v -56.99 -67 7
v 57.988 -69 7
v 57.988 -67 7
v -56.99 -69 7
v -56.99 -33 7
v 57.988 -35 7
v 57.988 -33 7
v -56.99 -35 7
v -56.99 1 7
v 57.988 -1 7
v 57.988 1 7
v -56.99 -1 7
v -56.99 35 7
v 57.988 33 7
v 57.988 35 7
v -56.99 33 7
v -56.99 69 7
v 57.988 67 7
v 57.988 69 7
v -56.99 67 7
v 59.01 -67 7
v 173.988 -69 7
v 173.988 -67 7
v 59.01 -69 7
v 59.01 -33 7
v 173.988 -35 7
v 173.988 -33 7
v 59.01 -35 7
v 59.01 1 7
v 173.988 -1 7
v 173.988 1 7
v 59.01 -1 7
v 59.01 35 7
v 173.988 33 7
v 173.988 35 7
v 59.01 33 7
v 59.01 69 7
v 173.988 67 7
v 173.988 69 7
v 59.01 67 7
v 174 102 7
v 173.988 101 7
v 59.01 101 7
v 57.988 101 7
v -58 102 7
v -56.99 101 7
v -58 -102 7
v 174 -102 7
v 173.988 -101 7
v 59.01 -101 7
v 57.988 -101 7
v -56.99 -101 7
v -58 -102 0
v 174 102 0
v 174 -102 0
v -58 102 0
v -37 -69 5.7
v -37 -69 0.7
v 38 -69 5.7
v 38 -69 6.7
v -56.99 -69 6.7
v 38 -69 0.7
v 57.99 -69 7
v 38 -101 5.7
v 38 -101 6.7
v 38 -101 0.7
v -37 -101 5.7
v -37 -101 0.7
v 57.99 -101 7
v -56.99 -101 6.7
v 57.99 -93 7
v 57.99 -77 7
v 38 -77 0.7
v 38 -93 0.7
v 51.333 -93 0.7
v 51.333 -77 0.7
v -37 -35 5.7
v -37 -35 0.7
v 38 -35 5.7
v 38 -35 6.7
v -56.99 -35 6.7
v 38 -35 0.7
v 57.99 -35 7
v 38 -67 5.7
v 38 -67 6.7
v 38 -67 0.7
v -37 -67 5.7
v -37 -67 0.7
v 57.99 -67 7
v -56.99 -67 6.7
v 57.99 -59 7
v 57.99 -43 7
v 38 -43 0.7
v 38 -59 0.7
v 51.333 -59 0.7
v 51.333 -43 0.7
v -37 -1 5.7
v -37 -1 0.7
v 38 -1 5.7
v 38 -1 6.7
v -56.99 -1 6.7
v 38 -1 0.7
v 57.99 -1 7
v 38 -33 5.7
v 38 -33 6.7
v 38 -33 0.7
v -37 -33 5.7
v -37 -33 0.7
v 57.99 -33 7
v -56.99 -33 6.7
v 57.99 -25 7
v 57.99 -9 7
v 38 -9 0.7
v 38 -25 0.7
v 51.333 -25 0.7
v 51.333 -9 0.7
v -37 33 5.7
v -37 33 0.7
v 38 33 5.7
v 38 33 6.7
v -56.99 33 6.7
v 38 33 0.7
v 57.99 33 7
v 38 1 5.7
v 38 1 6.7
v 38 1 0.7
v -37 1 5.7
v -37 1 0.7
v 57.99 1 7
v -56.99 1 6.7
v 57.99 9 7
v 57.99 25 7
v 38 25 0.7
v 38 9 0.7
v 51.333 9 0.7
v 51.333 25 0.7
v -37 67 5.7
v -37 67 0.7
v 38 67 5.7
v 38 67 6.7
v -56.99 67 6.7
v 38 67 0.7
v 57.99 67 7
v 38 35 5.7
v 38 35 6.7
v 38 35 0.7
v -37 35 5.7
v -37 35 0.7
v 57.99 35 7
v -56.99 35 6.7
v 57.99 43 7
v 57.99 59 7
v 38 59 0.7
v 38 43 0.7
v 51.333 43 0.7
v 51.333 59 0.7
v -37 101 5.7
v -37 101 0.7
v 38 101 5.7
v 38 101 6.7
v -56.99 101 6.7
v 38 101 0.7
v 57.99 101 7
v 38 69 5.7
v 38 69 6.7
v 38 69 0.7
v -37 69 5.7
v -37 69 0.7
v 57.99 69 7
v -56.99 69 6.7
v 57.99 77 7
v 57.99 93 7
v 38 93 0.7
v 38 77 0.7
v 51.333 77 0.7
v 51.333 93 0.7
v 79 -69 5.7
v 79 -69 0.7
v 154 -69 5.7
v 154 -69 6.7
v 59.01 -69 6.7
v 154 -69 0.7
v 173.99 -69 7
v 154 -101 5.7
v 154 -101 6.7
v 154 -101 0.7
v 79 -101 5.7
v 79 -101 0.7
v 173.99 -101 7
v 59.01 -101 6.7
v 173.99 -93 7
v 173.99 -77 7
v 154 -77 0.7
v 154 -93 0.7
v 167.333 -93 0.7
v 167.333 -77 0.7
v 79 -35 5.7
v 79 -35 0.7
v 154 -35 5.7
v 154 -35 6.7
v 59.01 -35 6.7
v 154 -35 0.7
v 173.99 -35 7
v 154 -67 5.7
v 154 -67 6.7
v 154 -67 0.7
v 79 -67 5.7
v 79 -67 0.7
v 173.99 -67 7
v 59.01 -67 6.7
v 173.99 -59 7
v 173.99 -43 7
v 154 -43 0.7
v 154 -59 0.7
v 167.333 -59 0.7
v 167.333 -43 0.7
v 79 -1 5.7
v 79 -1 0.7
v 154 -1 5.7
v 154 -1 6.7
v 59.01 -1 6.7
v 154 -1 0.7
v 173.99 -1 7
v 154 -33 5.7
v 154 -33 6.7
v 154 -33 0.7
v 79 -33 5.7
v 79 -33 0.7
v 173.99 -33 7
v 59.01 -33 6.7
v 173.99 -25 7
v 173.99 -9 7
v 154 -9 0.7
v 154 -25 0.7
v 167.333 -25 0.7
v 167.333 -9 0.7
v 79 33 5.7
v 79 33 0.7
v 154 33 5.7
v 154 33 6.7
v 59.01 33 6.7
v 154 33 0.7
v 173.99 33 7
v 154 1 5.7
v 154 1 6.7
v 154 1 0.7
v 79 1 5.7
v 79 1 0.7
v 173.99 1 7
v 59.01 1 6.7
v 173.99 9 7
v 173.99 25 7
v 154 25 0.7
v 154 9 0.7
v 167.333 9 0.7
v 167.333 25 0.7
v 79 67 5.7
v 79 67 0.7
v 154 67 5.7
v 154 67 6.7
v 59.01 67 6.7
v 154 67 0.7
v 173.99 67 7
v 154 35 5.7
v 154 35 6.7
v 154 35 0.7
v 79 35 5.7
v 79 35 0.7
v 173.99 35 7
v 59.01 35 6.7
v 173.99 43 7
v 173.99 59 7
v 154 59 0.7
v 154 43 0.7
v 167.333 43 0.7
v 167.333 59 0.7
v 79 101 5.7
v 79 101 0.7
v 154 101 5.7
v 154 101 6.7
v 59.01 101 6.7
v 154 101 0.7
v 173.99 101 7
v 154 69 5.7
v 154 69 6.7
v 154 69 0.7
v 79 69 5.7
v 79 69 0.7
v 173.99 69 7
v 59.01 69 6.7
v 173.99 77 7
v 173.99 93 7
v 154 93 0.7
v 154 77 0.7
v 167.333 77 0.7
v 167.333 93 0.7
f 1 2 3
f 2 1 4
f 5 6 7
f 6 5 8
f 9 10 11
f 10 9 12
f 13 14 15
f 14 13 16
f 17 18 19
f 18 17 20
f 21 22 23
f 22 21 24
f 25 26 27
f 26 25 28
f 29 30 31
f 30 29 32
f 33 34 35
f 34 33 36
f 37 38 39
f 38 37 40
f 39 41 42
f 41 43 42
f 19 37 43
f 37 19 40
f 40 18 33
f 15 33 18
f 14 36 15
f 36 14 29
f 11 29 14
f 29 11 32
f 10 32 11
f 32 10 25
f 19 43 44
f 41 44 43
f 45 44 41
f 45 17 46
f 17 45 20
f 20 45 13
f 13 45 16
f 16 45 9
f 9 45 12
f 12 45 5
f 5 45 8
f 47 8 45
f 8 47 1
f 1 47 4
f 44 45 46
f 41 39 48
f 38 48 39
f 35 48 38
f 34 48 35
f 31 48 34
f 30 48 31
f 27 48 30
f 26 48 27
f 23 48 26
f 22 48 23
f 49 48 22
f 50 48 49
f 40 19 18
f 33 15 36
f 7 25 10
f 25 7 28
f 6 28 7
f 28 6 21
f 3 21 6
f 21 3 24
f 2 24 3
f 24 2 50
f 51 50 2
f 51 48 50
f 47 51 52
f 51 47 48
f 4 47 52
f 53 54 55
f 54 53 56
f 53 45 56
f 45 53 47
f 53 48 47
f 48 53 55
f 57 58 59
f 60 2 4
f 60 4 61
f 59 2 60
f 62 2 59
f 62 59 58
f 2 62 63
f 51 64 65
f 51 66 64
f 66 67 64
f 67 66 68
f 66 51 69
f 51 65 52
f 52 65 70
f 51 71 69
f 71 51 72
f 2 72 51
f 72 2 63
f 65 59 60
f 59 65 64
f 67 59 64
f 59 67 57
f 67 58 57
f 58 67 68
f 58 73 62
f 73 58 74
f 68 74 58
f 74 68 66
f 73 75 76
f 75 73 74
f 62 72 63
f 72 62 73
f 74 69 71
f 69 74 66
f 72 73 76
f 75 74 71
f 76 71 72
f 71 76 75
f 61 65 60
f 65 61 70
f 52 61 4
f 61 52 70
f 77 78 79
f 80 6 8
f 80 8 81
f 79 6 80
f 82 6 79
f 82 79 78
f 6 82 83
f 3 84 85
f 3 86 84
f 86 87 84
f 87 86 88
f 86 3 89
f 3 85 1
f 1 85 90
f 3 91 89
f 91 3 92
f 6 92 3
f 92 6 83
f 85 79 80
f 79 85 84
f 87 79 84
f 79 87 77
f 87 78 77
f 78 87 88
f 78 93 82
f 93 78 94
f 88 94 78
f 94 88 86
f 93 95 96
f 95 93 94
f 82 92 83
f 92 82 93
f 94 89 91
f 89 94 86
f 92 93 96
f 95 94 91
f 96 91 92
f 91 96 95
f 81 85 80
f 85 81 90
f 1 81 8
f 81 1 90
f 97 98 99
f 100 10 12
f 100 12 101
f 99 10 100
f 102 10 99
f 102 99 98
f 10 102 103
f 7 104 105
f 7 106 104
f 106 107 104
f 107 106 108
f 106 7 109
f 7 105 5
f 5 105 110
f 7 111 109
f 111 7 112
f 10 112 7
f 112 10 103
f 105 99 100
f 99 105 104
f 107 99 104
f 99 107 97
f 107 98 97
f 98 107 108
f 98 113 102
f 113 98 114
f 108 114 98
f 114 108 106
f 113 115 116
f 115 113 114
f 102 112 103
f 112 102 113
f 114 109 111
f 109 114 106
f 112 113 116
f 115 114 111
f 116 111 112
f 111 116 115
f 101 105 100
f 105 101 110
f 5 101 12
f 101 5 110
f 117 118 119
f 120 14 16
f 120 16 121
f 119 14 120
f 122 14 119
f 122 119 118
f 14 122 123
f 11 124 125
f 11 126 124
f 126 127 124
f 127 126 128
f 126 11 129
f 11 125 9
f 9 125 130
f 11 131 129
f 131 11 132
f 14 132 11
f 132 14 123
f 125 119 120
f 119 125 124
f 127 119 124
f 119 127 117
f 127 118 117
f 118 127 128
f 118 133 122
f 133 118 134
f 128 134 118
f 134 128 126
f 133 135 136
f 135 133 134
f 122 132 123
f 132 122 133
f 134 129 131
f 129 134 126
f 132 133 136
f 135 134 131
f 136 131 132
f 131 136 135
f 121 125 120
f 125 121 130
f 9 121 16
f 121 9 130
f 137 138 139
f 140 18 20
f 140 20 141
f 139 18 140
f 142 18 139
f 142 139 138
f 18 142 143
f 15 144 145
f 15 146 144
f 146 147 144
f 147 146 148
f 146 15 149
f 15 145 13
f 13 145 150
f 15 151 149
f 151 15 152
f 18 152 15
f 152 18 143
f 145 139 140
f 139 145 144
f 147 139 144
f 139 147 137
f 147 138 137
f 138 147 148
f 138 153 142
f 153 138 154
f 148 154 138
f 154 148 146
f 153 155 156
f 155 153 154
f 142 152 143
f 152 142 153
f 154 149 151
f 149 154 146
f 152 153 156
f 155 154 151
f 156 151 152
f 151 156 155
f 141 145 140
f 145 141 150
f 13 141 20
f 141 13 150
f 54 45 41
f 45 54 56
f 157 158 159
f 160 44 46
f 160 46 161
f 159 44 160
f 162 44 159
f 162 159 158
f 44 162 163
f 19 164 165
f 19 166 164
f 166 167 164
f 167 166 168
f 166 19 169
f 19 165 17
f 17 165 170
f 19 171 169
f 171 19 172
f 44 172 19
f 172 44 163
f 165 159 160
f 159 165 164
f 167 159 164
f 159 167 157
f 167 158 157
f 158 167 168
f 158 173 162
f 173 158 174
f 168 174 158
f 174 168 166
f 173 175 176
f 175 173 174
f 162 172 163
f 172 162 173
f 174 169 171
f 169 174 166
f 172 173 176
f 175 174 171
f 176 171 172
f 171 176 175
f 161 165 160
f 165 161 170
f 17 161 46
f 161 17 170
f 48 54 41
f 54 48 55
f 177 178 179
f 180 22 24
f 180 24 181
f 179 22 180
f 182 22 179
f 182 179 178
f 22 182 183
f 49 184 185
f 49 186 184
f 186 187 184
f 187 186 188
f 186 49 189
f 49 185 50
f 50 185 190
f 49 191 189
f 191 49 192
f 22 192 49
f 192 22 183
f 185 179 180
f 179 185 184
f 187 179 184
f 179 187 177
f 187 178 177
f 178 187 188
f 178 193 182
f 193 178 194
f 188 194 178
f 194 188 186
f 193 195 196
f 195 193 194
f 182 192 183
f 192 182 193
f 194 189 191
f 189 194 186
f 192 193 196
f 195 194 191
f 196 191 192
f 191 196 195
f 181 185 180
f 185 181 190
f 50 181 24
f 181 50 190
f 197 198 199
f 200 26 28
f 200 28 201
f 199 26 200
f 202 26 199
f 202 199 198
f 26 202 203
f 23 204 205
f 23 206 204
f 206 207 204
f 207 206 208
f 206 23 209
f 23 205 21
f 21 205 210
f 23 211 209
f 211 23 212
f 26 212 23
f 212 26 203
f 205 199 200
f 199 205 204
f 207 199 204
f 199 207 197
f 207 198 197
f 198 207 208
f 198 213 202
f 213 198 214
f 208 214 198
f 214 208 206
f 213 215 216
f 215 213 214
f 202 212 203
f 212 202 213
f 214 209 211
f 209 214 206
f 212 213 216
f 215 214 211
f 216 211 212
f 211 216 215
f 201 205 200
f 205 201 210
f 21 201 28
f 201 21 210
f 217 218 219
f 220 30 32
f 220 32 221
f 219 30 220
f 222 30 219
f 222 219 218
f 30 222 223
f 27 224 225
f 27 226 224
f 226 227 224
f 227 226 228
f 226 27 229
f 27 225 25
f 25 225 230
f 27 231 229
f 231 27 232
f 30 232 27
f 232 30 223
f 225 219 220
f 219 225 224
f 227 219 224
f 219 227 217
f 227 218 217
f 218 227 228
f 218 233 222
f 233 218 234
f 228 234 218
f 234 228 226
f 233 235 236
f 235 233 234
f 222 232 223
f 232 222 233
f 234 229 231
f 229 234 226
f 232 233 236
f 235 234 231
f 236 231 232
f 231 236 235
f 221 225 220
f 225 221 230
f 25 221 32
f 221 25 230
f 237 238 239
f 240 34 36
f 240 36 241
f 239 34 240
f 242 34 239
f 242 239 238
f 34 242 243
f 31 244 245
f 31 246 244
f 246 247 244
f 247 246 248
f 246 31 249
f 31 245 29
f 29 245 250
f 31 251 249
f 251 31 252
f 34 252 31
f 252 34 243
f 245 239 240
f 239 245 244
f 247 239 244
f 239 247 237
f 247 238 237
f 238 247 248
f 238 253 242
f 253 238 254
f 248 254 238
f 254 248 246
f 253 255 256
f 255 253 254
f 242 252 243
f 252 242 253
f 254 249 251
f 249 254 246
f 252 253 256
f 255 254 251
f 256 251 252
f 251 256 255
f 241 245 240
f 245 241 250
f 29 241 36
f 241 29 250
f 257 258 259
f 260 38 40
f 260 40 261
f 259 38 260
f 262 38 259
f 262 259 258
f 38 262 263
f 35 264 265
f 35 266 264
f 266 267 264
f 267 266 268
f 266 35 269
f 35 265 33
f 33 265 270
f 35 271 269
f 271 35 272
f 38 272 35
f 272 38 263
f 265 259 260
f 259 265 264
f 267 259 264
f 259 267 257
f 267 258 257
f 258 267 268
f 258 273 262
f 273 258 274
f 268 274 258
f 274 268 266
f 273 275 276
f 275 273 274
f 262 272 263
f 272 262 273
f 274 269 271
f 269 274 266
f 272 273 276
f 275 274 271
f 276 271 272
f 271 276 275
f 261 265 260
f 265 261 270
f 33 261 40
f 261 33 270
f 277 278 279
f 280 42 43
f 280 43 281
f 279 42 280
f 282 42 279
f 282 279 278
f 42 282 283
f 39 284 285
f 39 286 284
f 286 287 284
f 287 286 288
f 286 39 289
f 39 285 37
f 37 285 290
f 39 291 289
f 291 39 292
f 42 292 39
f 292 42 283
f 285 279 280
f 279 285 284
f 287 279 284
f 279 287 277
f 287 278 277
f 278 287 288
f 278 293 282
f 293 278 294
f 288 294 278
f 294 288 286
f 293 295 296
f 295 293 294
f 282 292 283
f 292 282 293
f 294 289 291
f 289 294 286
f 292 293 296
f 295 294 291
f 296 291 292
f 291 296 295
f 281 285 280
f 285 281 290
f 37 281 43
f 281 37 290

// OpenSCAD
// Preprinted Label Holder or First Aid Bandaid Holder
// By Brian Khuu 2022-04-22


print_nozzle_dia = 0.6;
print_layer_width = 0.2;

// slot
// Default values based on https://www.mbe.com.au/what-is-the-standard-business-card-size-in-australia/
slot_width = 95; // 90mm but some in real life are more like 91mm (Plus 0.5 tol )
slot_height = 32; // 55mm (add 0.5mm tol)
slot_thickness = 5; // 0.25mm for thin paper cards. 0.8mm for thick plastic cards. We need to add extra thickness to account for layer droop

// Holder
wall_spacing = print_nozzle_dia+0.4;
wall_card_grip = 20;
wall_x_count = 2;
wall_y_count = 6;

// Calc
wall_base = print_layer_width*3+0.1;
wall_top = print_layer_width*6+0.1;
wall_width = wall_base + slot_thickness + wall_top;
slot_bulk_width = slot_width+wall_spacing+wall_card_grip;
slot_bulk_height = slot_height+wall_spacing*2;

module cardholder()
{
    // Label Title Sticker
    if (0)
    translate([wall_spacing,-30/2,wall_width+0.1])
        %cube([90, 30, 0.1]);    
        
    // Label In Holder
    if (0)
    translate([wall_spacing+wall_card_grip,-30/2,wall_width/2])
        rotate([0,-2,0])
        %cube([90, 30, 0.1]);

    difference()
    {
        translate([0,-slot_bulk_height/2,0])
            cube([slot_bulk_width, slot_bulk_height, wall_width]);

        // Slope
        translate([wall_card_grip+wall_spacing,0,wall_base])
            rotate([90,0,0])
                translate([0,0,-(slot_bulk_height-wall_spacing*2)/2])
                    linear_extrude(height=slot_bulk_height-wall_spacing*2)
                        polygon(points=[[0,0],
                            [0,slot_thickness],
                            [slot_width-wall_card_grip,slot_thickness],
                            [slot_width-wall_card_grip,slot_thickness+wall_top+0.1],
                            [slot_width-wall_card_grip,slot_thickness+wall_top+0.1],
                            [slot_width-0.01,slot_thickness+wall_top],
                            [slot_width-wall_card_grip,0]
                            ]);

        // Slope
        translate([wall_card_grip+wall_spacing,0,wall_base])
            rotate([90,0,0])
                translate([0,0,-(slot_bulk_height-wall_spacing*2)/4])
                    linear_extrude(height=(slot_bulk_height-wall_spacing*2)/2)
                        polygon(points=[[0,0],
                            [0,slot_thickness],
                            [slot_width-wall_card_grip,slot_thickness],
                            [slot_width-wall_card_grip,slot_thickness+wall_top+0.1],
                            [slot_width-wall_card_grip,slot_thickness+wall_top+0.1],
                            [slot_width-0.01,slot_thickness+wall_top],
                            [slot_width-wall_card_grip/3,0]
                            ]);

        // Label Positioner
        translate([wall_spacing+0.01,-(slot_bulk_height-wall_spacing*2)/2,wall_width-print_layer_width*3/2])
            cube([slot_width, slot_bulk_height-wall_spacing*2, print_layer_width*3]);    
    }
}

if (wall_x_count == 1 && wall_y_count == 1)
{
    cardholder();
}
else
{
    translate([-((slot_bulk_width)*wall_x_count)/2,-((slot_bulk_height)*wall_y_count)/2,0])
    {
        for (x = [0: 1 : wall_x_count-1])
            for (y = [0 : 1 : wall_y_count-1])
                translate([x*(slot_bulk_width) + (slot_bulk_width)/2, y*(slot_bulk_height)+(slot_bulk_height)/2, 0])
                        cardholder();
    }
}
